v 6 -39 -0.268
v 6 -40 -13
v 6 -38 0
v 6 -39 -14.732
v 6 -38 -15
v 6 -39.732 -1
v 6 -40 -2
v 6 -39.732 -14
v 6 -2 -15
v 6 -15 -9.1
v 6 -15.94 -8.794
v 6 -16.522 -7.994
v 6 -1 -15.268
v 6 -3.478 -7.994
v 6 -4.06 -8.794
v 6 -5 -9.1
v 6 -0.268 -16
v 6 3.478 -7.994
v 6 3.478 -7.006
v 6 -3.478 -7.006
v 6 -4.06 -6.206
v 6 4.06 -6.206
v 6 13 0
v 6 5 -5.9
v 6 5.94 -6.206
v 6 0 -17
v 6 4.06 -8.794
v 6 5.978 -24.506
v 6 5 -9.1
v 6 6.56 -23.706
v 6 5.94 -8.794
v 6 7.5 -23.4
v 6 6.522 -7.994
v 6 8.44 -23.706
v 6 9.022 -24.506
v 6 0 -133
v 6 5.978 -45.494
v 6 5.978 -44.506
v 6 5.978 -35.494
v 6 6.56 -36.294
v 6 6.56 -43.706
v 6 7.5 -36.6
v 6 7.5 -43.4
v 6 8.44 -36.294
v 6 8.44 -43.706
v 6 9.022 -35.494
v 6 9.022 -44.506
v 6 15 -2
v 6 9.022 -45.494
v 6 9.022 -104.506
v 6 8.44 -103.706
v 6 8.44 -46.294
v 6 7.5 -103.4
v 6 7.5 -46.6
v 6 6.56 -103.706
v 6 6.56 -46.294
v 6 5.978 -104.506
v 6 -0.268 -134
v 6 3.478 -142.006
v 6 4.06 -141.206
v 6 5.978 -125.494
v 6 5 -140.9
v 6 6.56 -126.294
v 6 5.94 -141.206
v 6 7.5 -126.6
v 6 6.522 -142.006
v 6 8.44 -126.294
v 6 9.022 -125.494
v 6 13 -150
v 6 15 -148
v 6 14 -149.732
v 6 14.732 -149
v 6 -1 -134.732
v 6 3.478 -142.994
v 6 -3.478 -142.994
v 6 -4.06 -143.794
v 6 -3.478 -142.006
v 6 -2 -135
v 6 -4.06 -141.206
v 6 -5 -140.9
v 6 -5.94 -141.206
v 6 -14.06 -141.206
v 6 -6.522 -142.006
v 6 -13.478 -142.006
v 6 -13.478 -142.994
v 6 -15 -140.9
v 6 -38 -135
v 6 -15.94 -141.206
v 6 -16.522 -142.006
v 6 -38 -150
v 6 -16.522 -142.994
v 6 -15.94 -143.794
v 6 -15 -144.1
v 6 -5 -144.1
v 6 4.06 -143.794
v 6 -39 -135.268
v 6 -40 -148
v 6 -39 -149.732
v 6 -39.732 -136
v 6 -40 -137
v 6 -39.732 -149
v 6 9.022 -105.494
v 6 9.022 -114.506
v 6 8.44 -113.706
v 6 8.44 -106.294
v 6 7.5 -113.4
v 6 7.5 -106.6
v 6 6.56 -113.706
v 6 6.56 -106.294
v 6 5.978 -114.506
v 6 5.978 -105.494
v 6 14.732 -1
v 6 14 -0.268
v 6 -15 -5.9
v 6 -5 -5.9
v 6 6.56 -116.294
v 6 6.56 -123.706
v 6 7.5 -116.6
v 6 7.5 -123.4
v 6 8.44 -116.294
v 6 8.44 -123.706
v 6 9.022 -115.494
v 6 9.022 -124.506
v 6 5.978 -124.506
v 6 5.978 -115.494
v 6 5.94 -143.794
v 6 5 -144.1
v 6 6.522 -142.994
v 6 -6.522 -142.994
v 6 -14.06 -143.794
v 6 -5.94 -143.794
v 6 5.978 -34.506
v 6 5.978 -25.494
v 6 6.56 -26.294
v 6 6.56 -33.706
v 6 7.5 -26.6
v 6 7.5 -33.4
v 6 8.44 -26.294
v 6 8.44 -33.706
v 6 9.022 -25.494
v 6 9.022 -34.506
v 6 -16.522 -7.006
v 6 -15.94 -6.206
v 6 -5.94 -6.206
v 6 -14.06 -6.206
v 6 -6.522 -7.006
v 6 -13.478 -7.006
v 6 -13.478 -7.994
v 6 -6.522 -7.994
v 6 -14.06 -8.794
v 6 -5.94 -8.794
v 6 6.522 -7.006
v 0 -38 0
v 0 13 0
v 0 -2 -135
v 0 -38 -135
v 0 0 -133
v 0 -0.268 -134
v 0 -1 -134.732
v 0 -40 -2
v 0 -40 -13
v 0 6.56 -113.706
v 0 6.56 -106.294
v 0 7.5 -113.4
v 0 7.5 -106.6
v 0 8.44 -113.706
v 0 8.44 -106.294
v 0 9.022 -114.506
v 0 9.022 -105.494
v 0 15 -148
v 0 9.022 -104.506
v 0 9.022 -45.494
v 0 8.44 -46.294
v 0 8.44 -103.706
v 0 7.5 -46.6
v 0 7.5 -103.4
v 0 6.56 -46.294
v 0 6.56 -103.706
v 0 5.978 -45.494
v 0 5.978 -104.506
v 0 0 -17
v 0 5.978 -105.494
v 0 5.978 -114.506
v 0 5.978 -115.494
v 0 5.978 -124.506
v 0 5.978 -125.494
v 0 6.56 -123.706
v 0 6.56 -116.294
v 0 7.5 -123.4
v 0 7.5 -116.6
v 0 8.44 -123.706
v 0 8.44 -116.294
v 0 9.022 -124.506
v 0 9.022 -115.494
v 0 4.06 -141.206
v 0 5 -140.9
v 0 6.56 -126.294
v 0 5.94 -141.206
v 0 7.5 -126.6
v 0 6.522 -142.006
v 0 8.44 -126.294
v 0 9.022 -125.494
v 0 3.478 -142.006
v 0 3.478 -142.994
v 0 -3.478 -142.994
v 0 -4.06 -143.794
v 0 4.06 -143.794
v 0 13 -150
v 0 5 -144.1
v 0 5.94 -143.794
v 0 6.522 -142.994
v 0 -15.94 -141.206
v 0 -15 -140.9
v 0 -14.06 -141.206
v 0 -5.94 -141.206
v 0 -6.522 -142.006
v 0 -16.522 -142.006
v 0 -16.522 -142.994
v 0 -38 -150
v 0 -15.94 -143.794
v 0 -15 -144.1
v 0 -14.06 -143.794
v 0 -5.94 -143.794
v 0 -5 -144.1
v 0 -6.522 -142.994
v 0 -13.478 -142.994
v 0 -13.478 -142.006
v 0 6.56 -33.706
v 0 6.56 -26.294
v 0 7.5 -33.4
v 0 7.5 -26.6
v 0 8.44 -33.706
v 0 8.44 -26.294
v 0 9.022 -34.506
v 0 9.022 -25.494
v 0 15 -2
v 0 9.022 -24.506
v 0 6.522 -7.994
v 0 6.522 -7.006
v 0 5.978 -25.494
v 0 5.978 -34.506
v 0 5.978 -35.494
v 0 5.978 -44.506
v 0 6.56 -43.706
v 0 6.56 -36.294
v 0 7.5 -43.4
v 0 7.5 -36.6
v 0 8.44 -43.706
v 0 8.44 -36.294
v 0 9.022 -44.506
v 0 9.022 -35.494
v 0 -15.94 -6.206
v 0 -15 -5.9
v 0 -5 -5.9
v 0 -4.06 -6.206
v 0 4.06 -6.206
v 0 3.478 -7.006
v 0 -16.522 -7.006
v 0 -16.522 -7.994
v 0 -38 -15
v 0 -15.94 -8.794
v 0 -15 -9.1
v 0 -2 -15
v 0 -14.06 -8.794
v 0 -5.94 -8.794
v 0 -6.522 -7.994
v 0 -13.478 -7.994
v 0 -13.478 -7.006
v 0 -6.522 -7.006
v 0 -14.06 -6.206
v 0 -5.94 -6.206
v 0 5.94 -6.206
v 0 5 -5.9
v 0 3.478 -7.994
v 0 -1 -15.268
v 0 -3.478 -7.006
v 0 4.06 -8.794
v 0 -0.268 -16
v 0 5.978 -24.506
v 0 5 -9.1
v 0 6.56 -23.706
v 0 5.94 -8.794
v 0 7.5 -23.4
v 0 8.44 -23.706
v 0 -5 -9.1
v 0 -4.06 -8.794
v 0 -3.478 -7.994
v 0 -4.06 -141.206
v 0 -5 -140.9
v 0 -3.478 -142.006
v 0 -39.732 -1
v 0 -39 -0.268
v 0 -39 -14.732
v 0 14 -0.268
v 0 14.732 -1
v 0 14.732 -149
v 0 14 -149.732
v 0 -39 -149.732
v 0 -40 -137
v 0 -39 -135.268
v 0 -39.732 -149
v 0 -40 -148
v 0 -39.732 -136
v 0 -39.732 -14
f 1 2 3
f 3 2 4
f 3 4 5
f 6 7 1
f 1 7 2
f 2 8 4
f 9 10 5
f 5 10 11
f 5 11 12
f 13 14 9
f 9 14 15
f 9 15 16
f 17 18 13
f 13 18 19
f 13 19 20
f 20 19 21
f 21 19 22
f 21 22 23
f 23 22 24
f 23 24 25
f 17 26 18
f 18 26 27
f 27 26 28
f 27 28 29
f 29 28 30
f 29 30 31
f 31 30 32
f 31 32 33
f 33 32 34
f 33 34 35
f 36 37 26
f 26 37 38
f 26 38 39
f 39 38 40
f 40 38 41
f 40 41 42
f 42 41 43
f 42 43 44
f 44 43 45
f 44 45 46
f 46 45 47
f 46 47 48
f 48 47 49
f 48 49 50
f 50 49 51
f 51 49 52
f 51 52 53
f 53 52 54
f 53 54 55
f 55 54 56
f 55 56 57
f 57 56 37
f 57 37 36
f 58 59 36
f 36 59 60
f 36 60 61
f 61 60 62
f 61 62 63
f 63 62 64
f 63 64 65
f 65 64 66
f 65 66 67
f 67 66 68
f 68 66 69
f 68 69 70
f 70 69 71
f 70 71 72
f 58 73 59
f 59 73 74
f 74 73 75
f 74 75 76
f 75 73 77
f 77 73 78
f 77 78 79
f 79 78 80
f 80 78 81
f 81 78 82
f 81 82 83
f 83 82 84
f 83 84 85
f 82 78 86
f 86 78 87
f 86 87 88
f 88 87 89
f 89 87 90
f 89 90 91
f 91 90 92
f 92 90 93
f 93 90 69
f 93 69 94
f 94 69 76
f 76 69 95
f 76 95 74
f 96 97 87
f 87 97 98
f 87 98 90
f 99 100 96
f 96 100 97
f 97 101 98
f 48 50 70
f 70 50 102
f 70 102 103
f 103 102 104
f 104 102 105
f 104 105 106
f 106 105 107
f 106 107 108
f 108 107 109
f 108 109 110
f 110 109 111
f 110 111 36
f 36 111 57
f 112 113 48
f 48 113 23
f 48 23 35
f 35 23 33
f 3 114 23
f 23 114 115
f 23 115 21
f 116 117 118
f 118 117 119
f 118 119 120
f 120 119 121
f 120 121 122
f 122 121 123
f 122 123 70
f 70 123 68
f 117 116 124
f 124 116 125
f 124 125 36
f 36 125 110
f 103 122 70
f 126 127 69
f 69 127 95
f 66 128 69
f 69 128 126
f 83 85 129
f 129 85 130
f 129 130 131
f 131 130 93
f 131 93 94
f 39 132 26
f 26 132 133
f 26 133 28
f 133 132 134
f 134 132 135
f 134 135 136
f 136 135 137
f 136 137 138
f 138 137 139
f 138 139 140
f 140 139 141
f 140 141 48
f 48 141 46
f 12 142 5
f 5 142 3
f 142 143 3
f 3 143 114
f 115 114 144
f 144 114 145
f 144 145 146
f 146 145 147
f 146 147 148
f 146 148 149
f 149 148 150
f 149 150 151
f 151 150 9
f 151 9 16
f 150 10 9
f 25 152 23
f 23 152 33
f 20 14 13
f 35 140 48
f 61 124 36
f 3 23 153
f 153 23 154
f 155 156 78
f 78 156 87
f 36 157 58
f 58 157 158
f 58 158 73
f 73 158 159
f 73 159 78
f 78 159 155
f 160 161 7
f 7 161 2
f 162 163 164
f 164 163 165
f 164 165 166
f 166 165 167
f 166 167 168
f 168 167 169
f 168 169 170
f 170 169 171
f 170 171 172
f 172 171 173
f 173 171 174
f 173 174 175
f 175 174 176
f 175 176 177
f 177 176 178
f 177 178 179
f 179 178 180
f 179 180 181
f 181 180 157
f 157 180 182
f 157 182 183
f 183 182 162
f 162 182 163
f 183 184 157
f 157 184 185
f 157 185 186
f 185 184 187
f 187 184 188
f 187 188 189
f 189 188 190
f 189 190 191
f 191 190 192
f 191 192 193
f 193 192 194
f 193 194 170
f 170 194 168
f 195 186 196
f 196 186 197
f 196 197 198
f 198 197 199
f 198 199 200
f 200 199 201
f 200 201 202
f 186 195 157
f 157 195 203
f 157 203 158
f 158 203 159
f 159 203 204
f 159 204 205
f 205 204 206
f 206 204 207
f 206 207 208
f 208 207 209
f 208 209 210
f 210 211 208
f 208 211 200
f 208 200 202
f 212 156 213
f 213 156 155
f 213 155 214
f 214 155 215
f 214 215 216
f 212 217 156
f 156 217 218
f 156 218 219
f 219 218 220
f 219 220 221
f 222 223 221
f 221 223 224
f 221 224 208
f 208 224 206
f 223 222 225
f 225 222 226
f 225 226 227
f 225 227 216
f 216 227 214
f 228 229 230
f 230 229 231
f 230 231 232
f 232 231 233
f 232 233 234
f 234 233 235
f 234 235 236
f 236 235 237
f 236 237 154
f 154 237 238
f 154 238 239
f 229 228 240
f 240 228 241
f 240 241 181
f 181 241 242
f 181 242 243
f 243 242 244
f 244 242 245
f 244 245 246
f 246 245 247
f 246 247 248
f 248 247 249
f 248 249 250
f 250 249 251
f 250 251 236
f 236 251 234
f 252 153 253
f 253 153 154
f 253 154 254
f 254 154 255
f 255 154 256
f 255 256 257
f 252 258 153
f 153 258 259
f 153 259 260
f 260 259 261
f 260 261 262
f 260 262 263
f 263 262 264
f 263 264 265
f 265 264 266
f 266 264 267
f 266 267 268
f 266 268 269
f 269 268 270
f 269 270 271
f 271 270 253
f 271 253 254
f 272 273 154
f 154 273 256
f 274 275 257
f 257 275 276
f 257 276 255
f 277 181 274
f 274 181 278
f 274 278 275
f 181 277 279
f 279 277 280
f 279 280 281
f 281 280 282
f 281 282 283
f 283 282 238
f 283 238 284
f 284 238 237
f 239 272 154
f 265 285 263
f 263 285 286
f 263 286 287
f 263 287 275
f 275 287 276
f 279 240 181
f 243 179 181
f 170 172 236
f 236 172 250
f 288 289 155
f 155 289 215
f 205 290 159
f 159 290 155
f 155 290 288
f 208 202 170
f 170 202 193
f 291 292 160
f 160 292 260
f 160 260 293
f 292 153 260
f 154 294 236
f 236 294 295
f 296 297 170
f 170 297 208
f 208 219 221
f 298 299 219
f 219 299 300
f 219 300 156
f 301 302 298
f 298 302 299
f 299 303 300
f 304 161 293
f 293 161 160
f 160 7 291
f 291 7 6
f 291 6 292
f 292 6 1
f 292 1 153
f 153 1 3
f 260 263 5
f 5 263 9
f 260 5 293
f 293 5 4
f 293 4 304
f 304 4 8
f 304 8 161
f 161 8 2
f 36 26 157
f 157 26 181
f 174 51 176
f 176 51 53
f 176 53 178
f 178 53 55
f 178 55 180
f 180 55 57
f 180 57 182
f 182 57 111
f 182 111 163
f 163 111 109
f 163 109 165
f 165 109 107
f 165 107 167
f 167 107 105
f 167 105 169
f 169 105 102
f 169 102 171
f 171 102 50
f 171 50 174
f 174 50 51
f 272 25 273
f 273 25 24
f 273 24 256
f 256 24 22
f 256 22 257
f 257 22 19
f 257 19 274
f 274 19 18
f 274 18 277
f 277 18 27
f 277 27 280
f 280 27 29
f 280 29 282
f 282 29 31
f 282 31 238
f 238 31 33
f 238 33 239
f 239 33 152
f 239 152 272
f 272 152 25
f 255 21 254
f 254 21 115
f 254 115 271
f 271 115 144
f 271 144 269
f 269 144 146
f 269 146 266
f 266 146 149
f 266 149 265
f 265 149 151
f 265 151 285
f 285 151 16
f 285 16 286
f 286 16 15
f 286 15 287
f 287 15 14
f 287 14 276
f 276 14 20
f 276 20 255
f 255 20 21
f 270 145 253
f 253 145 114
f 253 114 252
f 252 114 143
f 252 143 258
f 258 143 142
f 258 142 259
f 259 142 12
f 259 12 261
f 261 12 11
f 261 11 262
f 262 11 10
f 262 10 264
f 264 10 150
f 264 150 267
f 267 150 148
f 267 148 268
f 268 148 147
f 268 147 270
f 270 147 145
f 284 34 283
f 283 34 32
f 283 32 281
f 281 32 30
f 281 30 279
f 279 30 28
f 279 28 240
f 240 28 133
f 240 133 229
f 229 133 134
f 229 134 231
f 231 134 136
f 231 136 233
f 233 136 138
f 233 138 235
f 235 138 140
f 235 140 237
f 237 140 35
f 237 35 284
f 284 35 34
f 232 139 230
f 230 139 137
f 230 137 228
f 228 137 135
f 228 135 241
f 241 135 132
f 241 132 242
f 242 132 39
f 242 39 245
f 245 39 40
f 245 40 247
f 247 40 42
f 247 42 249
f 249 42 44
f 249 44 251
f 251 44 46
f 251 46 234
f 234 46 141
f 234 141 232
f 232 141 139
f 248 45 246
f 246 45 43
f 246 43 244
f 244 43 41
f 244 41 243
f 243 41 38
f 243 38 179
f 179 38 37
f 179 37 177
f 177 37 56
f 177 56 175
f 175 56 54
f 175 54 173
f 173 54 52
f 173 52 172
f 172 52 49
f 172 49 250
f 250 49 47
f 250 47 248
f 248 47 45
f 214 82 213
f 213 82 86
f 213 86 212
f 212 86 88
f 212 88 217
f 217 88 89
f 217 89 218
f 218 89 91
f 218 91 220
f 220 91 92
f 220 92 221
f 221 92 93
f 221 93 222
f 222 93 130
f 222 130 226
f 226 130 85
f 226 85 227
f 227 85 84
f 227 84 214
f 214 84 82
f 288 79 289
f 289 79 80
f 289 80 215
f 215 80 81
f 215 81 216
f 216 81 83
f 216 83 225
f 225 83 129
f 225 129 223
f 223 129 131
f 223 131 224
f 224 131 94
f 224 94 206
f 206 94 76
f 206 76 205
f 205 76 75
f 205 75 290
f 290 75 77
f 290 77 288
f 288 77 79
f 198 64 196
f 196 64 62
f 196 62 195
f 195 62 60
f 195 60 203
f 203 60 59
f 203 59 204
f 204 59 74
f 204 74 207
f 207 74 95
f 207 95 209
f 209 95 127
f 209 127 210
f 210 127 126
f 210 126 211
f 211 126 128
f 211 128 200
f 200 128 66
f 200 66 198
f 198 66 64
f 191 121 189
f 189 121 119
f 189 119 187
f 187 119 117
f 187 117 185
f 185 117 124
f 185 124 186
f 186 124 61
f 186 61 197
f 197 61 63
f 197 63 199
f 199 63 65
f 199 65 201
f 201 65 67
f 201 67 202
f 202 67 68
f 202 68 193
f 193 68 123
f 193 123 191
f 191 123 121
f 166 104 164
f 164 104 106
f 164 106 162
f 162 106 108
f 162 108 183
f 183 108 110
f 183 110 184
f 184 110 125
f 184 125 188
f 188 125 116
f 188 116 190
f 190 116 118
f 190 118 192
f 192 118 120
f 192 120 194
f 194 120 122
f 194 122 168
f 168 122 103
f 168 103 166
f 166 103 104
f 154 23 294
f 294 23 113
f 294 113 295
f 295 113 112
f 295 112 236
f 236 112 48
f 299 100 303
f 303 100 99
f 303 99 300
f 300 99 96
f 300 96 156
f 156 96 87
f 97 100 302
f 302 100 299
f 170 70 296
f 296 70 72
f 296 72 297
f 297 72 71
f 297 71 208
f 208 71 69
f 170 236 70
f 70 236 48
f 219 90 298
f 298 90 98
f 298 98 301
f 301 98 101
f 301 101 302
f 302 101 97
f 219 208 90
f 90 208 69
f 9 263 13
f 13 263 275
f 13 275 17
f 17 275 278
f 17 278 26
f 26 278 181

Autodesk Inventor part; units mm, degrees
ref_plane "YZ Plane" through (0, 0, 0) normal (1, 0, 0) x (0, 1, 0)
ref_plane "XZ Plane" through (0, 0, 0) normal (0, 1, 0) x (-1, 0, 0)
ref_plane "XY Plane" through (0, 0, 0) normal (0, 0, 1) x (1, 0, 0)
sketch "スケッチ1" plane through (0, 0, 0) normal (1, 0, 0) x (0, 1, 0)
  line L0 (0, 0) -> (15, 0)
  line L1 (15, 0) -> (15, -150)
  line L2 (15, -150) -> (0, -150)
  line L3 (0, -150) -> (0, 0)
  line L4 (0, 0) -> (-40, 0)
  line L5 (-40, 0) -> (-40, -15)
  line L6 (-40, -15) -> (0, -15)
  line L7 (0, -15) -> (0, 0)
  line L8 (0, -150) -> (-40, -150)
  line L9 (-40, -150) -> (-40, -135)
  line L10 (-40, -135) -> (0, -135)
  line L11 (0, -135) -> (0, -150)
  dimension "d0" = 15
  dimension "d1" = 150
  dimension "d2" = 40
  dimension "d3" = 15
  dimension "d4" = 40
  dimension "d5" = 15
extrude "押し出し1" add sketch "スケッチ1" along normal blind 6
sketch "スケッチ2" plane through (6, 0, 0) normal (1, 0, 0) x (0, 0, -1)
  line L0 (150, 15) -> (0, 15) projected
  line L1 (0, 15) -> (0, -40) projected
  line L2 (75, 15) -> (75, -40) construction
  point P0 (0, 0)
  point P1 (7.5, 5)
  point P2 (7.5, -5)
  point P3 (7.5, -15)
  point P4 (25, 7.5)
  point P5 (35, 7.5)
  point P6 (45, 7.5)
  point P7 (142.5, 5)
  point P8 (142.5, -5)
  point P9 (142.5, -15)
  point P10 (125, 7.5)
  point P11 (115, 7.5)
  point P12 (105, 7.5)
  dimension "d8" = 10
  dimension "d9" = 7.5
  dimension "d10" = 10
  dimension "d11" = 10
  dimension "d12" = 7.5
  dimension "d13" = 25
  dimension "d14" = 10
  dimension "d15" = 10
hole "穴1" at (6, 5, -7.5) at (6, -5, -7.5) at (6, -15, -7.5) at (6, 7.5, -25) at (6, 7.5, -35) at (6, 7.5, -45) at (6, -15, -142.5) at (6, -5, -142.5) at (6, 5, -142.5) at (6, 7.5, -125) at (6, 7.5, -115) at (6, 7.5, -105) direction (-1, 0, 0) diameter 3.2 end through all
fillet "フィレット1" radius 2 8 edges at (3, 15, 0) (3, -40, -135) (3, 15, -150) (3, -40, -150) (3, 0, -15) (3, -40, -15) (3, -40, 0) (3, 0, -135)
properties part number "射出_受け身" material "アセタール樹脂、白"
